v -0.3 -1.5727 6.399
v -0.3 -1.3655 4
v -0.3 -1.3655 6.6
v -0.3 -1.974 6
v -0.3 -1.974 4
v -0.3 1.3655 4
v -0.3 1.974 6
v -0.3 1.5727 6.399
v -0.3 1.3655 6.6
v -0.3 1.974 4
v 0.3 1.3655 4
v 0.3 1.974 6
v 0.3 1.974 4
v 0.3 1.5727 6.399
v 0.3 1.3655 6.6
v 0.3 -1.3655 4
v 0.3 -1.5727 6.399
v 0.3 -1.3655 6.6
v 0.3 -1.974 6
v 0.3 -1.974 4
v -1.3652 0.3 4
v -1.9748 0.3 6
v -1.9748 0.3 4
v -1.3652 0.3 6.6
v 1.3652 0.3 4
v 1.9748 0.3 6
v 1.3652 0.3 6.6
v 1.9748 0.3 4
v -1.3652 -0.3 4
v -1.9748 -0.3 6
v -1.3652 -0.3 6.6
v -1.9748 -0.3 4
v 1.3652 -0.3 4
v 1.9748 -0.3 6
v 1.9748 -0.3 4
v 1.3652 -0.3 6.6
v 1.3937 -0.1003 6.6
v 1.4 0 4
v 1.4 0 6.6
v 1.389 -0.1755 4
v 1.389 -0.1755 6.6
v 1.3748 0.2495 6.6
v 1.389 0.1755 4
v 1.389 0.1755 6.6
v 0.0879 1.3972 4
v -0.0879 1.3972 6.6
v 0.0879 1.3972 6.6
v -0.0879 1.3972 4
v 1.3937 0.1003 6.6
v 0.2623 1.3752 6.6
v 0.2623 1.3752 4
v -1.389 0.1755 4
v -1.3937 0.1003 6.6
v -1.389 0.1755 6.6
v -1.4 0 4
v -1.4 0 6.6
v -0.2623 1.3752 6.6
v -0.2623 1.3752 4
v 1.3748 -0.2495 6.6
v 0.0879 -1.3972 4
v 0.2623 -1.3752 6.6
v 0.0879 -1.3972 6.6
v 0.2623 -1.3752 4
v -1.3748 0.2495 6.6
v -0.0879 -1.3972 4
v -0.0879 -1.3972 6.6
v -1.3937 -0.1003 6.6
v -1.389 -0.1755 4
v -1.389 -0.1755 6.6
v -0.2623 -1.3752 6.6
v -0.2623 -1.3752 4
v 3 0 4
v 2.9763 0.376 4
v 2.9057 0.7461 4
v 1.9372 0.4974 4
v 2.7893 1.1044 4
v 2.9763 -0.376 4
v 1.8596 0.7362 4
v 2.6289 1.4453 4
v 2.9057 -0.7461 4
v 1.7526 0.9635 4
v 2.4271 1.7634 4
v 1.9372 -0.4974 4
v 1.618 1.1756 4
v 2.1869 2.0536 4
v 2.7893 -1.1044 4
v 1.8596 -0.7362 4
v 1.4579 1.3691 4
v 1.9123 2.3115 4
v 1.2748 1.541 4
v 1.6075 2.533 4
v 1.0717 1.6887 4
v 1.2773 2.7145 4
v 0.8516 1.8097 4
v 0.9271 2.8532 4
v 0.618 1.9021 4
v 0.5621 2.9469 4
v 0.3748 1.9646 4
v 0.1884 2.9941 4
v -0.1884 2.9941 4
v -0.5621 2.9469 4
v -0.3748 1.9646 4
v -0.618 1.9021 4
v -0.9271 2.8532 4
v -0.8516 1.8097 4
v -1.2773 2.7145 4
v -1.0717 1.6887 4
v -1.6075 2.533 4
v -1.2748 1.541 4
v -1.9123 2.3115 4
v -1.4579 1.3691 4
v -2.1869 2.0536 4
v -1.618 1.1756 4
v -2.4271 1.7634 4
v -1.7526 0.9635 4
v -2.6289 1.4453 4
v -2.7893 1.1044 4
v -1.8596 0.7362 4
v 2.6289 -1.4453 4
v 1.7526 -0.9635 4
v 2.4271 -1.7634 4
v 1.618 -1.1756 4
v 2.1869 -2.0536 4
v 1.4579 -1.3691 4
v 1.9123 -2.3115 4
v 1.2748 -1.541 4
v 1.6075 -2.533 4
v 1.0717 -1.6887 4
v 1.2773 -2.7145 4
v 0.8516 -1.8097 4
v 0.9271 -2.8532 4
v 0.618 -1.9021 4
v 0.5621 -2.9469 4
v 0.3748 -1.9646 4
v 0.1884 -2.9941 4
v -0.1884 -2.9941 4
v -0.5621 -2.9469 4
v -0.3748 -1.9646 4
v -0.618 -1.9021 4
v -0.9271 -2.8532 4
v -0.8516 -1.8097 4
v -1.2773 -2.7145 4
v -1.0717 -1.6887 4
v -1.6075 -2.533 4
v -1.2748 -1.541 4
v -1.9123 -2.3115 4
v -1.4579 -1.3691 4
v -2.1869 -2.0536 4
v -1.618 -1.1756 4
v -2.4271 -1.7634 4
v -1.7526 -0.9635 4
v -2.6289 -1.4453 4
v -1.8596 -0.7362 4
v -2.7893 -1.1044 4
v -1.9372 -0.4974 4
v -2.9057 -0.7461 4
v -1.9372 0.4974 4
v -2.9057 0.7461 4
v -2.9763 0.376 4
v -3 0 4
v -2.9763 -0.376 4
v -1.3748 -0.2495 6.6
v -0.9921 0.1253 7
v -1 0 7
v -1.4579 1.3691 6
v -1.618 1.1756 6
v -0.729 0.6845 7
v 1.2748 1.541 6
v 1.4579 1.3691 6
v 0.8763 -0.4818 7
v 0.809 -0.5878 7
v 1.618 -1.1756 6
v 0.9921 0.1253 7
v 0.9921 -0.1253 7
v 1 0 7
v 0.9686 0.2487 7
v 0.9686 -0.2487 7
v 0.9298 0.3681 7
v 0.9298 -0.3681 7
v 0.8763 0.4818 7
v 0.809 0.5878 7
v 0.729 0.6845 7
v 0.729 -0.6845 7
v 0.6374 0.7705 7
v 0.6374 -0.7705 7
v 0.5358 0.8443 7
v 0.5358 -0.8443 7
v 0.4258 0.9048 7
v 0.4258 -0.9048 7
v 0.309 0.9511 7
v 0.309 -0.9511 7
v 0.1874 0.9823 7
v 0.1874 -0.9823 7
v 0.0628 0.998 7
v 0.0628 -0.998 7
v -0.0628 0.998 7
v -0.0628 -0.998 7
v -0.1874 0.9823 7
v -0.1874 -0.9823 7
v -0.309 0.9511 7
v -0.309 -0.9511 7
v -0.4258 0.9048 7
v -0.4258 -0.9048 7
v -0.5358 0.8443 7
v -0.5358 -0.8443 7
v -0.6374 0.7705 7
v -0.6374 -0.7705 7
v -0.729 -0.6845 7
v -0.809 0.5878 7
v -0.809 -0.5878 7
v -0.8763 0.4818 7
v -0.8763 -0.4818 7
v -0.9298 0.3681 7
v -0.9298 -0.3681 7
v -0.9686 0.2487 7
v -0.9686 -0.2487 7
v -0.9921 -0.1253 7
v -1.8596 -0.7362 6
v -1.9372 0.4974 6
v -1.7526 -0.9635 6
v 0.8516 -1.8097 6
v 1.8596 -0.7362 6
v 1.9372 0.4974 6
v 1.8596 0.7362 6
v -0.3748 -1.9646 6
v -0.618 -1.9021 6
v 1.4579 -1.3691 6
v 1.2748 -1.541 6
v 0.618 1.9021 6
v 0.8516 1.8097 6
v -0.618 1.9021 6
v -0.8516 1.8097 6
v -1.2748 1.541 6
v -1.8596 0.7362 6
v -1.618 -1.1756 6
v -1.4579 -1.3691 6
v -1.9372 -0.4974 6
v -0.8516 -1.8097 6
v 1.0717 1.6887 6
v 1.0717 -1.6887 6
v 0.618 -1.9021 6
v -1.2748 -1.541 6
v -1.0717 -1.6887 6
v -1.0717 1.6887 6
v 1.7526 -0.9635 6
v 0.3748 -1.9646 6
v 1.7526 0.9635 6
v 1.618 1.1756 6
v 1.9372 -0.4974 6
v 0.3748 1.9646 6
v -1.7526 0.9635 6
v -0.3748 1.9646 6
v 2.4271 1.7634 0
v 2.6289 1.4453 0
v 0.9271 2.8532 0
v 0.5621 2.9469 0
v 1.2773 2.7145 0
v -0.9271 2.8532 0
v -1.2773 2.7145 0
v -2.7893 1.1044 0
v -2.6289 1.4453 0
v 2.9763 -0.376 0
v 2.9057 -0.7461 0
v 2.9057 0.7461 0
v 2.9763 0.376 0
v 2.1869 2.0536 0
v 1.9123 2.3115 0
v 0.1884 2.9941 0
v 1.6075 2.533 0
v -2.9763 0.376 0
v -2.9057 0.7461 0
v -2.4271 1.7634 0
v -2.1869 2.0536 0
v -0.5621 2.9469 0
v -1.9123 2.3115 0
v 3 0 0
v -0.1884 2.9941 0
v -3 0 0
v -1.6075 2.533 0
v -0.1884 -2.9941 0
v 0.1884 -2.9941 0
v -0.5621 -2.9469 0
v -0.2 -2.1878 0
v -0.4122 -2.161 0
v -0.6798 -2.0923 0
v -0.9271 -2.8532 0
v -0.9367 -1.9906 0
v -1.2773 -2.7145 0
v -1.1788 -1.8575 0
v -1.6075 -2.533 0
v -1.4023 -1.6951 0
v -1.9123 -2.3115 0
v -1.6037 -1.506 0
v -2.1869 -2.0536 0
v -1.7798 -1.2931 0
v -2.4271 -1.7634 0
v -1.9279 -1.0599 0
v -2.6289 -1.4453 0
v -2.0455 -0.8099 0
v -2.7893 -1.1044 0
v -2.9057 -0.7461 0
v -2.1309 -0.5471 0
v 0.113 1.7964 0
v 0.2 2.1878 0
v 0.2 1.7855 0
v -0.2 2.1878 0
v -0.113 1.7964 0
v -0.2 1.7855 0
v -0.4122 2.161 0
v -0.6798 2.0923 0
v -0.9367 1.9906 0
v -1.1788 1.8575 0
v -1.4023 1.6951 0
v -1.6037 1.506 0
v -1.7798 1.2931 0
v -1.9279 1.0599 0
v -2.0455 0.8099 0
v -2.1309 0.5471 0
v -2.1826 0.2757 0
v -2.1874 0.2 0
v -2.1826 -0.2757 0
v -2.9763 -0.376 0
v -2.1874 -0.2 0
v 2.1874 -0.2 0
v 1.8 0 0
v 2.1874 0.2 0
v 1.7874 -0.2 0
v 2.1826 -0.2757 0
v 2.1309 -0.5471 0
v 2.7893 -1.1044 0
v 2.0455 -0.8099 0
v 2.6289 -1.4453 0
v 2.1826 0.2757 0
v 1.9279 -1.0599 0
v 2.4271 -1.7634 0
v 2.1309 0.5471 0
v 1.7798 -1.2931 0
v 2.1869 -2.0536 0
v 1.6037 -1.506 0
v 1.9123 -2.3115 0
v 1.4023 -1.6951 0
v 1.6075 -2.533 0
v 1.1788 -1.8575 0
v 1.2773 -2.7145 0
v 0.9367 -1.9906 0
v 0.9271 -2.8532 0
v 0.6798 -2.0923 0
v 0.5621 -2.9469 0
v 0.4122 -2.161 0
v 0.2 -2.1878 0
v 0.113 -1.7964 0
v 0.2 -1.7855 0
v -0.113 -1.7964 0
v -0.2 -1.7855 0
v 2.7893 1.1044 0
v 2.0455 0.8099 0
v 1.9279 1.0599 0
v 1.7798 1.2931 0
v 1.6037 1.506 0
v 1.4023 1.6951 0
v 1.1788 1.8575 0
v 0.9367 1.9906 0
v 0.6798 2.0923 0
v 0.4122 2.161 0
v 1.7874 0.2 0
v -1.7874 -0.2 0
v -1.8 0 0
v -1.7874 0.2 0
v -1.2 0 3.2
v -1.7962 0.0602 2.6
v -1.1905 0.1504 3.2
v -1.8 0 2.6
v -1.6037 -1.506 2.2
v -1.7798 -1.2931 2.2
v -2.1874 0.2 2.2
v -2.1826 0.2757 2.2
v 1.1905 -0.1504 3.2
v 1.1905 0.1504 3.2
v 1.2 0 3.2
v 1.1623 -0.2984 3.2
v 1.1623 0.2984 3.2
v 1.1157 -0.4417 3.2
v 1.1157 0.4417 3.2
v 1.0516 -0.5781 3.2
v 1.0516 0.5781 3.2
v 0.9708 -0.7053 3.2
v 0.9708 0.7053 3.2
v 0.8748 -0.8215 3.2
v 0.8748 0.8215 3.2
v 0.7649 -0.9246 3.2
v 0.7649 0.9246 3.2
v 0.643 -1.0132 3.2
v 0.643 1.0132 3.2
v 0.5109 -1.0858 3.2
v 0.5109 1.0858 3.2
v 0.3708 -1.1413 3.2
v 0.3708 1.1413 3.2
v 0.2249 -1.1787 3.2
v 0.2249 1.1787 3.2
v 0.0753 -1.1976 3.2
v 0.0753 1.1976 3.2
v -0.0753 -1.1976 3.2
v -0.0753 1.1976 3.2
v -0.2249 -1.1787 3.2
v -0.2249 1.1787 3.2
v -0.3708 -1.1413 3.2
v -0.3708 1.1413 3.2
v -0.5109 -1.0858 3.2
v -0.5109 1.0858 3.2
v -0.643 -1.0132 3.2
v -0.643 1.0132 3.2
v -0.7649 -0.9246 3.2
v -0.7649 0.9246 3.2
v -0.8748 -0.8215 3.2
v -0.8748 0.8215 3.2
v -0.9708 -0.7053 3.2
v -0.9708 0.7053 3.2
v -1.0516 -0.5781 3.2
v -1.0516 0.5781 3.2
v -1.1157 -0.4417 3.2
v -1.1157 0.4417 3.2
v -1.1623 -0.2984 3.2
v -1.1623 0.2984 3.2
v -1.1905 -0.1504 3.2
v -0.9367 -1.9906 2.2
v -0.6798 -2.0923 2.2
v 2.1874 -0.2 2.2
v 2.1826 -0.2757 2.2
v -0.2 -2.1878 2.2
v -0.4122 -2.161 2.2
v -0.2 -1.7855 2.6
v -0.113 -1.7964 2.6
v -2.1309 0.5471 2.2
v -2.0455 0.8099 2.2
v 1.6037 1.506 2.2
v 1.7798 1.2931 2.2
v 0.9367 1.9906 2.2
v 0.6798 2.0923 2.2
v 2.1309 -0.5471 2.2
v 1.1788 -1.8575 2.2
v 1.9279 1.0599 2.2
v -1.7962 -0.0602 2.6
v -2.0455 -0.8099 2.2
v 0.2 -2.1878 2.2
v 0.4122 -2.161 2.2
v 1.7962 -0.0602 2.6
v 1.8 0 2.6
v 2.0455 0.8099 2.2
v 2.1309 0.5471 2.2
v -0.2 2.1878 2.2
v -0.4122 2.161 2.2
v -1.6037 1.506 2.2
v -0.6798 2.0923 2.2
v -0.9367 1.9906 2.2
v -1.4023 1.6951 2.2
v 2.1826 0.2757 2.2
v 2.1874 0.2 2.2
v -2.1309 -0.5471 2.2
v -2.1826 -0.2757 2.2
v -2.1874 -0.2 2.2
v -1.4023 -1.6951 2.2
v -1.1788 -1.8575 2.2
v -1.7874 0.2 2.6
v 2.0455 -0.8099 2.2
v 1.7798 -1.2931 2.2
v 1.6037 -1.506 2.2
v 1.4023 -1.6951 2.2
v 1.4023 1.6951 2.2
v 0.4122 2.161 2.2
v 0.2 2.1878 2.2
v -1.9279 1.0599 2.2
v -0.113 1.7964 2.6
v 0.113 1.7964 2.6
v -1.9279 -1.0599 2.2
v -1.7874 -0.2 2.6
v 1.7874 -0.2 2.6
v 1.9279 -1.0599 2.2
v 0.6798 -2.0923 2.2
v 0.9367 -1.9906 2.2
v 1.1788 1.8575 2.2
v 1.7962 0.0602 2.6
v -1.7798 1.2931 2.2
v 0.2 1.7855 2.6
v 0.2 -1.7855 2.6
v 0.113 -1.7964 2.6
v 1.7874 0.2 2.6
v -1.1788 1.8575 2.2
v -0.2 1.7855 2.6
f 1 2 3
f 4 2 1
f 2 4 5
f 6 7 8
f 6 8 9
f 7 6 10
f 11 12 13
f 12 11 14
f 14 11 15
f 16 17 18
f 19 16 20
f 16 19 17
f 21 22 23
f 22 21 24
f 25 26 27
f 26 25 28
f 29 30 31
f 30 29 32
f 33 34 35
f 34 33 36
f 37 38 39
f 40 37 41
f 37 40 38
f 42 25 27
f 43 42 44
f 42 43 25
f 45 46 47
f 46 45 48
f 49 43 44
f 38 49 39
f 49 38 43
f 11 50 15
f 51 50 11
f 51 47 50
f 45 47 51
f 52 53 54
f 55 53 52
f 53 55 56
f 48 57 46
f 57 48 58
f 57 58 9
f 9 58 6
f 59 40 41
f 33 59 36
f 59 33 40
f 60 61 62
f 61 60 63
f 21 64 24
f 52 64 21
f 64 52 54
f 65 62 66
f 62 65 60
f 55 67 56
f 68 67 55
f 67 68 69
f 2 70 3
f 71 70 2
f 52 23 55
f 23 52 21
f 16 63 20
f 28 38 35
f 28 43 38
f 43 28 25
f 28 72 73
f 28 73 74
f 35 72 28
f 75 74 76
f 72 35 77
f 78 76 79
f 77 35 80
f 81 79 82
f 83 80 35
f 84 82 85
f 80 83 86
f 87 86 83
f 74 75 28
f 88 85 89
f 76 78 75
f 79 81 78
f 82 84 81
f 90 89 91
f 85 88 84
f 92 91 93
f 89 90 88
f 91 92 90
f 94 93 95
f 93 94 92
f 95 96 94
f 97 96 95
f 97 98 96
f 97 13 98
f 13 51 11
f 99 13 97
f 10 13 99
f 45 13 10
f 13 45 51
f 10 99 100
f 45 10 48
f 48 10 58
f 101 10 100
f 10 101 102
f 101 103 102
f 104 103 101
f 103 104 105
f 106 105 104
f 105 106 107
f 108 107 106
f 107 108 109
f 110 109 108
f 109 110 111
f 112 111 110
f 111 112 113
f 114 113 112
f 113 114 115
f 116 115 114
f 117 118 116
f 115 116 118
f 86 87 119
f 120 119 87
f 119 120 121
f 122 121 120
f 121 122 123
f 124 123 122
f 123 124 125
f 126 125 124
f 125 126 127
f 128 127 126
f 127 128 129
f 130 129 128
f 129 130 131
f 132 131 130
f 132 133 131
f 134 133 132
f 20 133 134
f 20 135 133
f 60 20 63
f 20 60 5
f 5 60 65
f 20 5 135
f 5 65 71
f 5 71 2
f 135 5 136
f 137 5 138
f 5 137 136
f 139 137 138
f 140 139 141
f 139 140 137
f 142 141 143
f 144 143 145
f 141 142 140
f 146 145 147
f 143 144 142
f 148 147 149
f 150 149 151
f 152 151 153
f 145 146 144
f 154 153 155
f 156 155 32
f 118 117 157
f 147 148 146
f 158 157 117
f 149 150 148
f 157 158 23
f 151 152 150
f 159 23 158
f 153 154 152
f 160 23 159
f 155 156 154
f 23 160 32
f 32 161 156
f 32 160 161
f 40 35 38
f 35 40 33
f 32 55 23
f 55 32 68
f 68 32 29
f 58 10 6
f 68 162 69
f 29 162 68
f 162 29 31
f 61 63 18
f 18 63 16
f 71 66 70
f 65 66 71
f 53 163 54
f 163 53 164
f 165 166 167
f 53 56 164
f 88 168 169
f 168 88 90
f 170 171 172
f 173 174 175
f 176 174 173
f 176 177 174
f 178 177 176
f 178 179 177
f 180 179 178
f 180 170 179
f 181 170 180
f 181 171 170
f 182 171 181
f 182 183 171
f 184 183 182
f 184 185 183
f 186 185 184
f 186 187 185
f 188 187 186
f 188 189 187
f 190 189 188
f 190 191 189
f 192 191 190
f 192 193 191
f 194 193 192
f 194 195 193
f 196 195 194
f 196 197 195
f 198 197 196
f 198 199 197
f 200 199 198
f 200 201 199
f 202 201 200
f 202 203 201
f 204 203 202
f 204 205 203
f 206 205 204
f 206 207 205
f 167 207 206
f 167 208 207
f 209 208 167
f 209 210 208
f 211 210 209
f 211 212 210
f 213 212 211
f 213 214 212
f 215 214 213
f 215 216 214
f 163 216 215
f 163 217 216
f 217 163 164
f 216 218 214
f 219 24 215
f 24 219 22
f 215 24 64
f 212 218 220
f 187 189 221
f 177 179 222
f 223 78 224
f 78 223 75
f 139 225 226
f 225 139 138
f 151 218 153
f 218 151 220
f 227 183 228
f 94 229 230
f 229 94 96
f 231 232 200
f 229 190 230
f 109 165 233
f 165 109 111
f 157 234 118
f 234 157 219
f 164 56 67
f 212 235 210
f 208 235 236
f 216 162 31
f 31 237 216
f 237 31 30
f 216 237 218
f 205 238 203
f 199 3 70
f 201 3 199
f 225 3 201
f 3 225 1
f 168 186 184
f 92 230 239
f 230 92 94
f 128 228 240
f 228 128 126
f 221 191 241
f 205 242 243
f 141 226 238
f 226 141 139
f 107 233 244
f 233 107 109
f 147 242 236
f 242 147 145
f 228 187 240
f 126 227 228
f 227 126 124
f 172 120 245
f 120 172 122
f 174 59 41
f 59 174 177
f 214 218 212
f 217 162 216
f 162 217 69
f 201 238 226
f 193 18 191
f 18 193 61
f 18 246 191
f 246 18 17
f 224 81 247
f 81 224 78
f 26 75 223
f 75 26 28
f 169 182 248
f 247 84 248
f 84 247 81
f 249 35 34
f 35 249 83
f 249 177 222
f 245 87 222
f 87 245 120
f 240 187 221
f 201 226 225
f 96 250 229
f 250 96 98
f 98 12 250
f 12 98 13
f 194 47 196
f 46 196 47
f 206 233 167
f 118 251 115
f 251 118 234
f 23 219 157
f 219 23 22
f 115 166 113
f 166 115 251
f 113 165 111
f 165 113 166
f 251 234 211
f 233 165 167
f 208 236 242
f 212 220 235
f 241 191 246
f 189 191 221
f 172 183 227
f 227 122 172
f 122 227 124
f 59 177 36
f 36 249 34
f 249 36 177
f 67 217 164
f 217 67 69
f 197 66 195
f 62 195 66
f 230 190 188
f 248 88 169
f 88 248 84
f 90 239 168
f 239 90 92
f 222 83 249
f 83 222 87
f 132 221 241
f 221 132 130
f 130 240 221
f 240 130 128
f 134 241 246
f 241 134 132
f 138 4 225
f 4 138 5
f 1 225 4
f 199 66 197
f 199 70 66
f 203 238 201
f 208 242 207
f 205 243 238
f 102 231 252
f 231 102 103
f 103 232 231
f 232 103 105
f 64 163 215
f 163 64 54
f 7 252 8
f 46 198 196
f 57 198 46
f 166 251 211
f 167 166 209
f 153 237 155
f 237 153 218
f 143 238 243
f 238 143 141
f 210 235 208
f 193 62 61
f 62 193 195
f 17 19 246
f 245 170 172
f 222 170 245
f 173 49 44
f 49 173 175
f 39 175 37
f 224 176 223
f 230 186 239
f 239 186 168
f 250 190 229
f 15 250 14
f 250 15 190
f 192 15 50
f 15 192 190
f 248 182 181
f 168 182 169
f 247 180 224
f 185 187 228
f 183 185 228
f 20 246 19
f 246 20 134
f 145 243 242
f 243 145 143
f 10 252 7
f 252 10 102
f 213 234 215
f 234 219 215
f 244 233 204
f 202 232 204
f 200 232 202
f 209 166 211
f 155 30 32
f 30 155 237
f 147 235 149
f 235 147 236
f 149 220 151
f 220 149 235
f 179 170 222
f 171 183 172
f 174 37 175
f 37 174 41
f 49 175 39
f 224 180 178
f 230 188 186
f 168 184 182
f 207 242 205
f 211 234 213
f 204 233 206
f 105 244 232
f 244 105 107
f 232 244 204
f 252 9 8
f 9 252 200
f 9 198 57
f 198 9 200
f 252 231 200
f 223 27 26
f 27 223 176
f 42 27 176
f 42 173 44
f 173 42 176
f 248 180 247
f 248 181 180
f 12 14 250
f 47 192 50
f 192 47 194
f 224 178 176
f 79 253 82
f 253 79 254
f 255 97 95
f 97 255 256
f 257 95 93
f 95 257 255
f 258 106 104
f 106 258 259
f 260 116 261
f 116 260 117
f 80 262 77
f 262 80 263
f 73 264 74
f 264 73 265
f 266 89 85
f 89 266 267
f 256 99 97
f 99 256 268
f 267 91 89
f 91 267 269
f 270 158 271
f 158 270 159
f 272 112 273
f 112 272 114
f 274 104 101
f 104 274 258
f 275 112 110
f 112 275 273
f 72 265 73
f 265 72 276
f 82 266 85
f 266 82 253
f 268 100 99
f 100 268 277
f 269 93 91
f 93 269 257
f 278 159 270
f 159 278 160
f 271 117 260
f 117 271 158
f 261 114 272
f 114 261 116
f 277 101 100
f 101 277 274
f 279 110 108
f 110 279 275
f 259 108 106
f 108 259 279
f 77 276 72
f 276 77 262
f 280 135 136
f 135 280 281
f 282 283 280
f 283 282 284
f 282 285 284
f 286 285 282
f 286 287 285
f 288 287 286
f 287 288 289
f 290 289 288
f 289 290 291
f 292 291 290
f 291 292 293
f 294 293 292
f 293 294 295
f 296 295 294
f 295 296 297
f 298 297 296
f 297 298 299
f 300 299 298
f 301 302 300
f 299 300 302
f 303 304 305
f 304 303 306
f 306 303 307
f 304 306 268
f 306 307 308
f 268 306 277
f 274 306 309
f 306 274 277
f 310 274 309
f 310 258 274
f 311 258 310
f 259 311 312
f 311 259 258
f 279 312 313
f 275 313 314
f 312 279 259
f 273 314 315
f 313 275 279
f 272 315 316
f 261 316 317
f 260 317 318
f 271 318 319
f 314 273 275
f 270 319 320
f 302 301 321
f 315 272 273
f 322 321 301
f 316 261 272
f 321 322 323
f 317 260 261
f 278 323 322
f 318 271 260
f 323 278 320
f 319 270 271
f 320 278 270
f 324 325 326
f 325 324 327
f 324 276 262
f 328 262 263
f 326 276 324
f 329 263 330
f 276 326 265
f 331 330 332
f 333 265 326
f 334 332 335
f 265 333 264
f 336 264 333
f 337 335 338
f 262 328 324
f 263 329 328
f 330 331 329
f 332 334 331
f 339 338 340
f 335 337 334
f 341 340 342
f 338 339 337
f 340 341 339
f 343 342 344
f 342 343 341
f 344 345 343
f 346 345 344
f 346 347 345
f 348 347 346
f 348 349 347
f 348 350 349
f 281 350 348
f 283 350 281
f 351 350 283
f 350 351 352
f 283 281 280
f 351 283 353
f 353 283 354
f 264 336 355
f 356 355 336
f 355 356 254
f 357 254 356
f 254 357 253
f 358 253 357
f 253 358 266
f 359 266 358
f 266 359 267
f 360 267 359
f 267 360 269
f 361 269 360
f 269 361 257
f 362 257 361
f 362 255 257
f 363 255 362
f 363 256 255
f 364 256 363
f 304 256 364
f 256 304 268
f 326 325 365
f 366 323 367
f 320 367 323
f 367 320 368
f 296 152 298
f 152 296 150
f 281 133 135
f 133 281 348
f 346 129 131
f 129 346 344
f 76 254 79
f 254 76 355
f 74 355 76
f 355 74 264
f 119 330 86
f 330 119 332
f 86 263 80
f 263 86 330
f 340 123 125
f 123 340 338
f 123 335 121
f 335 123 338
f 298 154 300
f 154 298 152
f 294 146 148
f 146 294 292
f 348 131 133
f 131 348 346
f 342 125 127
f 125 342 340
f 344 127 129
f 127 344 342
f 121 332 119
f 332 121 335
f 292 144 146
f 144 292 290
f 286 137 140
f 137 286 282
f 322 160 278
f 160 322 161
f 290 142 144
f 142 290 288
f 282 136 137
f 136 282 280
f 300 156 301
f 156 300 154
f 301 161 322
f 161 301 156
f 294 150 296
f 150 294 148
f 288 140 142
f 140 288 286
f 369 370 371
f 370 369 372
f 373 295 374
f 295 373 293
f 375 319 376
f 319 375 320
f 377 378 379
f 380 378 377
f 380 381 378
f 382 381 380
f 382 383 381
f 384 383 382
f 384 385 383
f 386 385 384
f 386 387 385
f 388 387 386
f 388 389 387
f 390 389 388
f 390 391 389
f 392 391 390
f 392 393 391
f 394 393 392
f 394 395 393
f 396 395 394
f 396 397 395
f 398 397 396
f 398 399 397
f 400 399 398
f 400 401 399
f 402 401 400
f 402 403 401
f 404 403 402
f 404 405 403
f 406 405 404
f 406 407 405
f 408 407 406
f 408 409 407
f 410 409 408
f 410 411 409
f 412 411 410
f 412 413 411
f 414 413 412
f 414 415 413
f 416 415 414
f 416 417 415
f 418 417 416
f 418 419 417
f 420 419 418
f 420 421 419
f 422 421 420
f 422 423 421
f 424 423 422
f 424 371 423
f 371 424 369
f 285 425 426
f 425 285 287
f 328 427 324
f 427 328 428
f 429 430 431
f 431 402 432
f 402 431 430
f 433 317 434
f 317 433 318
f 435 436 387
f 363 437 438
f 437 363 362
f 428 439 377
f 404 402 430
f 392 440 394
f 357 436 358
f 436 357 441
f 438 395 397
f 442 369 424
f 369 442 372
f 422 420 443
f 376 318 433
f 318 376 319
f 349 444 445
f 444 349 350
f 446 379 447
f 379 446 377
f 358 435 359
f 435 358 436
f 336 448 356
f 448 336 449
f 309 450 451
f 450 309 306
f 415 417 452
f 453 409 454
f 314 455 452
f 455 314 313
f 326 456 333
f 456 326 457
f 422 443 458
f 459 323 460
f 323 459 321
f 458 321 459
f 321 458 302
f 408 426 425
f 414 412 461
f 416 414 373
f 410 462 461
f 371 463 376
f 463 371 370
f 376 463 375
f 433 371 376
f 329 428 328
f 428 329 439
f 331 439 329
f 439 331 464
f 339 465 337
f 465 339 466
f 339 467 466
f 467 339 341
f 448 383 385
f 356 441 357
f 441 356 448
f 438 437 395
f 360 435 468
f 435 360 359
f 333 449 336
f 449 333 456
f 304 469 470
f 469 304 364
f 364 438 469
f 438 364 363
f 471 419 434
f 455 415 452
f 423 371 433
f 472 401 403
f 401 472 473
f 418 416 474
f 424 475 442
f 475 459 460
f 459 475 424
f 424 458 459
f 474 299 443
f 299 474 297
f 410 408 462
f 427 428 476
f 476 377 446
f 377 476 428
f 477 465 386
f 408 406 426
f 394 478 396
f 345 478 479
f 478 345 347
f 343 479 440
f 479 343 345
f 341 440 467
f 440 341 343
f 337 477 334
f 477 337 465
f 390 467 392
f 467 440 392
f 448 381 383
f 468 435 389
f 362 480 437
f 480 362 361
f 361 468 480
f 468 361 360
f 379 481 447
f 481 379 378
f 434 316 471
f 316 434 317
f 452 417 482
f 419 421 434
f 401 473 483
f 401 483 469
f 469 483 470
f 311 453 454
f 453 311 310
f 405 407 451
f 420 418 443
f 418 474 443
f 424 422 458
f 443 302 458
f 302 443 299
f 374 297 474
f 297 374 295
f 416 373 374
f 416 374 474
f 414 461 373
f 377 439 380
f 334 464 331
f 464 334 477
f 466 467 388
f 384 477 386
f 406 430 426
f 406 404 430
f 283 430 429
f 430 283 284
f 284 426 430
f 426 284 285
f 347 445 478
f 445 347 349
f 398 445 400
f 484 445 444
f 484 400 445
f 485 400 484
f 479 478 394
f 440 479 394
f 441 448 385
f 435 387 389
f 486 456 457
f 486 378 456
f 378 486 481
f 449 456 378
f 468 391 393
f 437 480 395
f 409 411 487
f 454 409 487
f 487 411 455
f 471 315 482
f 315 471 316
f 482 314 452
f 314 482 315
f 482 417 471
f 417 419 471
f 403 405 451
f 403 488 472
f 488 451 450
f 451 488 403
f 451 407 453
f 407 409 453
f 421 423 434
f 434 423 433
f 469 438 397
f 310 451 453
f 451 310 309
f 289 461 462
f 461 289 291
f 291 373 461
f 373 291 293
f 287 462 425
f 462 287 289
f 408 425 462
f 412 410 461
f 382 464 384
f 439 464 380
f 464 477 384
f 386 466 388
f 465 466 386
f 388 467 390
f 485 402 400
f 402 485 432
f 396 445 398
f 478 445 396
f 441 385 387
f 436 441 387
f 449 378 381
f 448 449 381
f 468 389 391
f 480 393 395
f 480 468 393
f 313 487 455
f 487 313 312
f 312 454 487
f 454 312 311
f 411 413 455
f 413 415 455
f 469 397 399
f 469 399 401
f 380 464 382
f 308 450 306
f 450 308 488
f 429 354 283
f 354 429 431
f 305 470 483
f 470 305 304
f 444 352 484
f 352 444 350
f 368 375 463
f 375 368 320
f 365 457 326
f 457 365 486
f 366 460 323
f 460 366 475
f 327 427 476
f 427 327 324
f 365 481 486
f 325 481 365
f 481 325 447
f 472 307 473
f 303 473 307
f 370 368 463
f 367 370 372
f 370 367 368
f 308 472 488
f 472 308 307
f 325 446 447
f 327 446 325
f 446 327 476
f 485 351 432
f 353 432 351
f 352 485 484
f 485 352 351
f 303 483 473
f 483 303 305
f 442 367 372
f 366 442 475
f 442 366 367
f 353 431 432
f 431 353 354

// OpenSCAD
$fn = 50;

renderRiser(height=4);

module renderRiser(height) {
  radius = 3;
  pegHeight = 3;
  holeRadius = 2;

  union() {
    difference() {
      union() {
        cylinder(r=radius, h=height);
        translate([0, 0, height])
          difference() {
            rotate_extrude()
              polygon(
                [
                  [0, 0],
                  [holeRadius, 0],
                  [holeRadius, pegHeight - 1],
                  [holeRadius - 1, pegHeight],
                  [0, pegHeight],
                ]
              );

            difference() {
              union() {
                translate([0, 0, pegHeight / 2]) cube([.6, holeRadius * 2, pegHeight + 1], center=true);
                translate([0, 0, pegHeight / 2]) cube([holeRadius * 2, .6, pegHeight + 1], center=true);
              }

              cylinder(r=holeRadius - .6, h=pegHeight + 2);
            }
          }
      }

      rotate_extrude()
        polygon(
          [
            [0, -1],
            [holeRadius + .2, -1],
            [holeRadius + .2, pegHeight - 1 + .2],
            [holeRadius - 1 + .2, pegHeight + .2],
            [0, pegHeight + .2],
          ]
        );
    }

    difference() {
      union() {
        translate([0, 0, pegHeight / 2]) cube([.4, (holeRadius + .2) * 2, pegHeight], center=true);
        translate([0, 0, pegHeight / 2]) cube([(holeRadius + .2) * 2, .4, pegHeight], center=true);
      }
      translate([0, 0, -.5]) cylinder(r=holeRadius - .2, h=pegHeight + 1);
    }
  }
  //   translate([0, 0, height / 2]) {
  //     difference() {
  //       union() {
  //         intersection() {
  //           union() {
  //             if (type == "cross") {
  //               for (a = [0:1])
  //                 rotate([0, 0, a * 90]) cube([wallThickness, radius * 2, height], center=true);
  //             } else if (type == "hash") {
  //               for (a = [0:1])
  //                 for (i = [-floor(radius / (wallThickness * 4)):floor(radius / (wallThickness * 4))])
  //                   rotate([0, 0, a * 90]) translate([i * wallThickness * 4, 0, 0]) cube([wallThickness, radius * 2, height], center=true);
  //             } else if (type == "spiral") {
  //               tendons = 3;
  //               steps = 10;
  //               curve = 60;

  //               for (a = [0:tendons - 1]) {
  //                 for (i = [0:steps - 2]) {
  //                   angleFrom = a * (360 / tendons) + i * (curve / steps);
  //                   angleTo = a * (360 / tendons) + (i + 1) * (curve / steps);

  //                   radiusFrom = i * (radius / steps);
  //                   radiusTo = (i + 1) * (radius / steps);

  //                   hull() {
  //                     translate([radiusFrom * cos(angleFrom), radiusFrom * sin(angleFrom), 0]) cylinder(d=wallThickness, h=height, center=true, $fn=steps);
  //                     translate([radiusTo * cos(angleTo), radiusTo * sin(angleTo), 0]) cylinder(d=wallThickness, h=height, center=true, $fn=steps);
  //                   }
  //                 }
  //               }
  //             }
  //           }

  //           cylinder(r=radius - toothLength / 2 - wallThickness, h=height, center=true);
  //         }

  //         difference() {
  //           cylinder(r=radius - toothLength / 2, h=height, center=true);
  //           cylinder(r=radius - toothLength / 2 - wallThickness, h=height + 1, center=true);
  //         }

  //         cylinder(r=holeRadius + wallThickness, h=height, center=true);
  //         translate([0, 0, height / 2])
  //           difference() {
  //             rotate_extrude()
  //               polygon(
  //                 [
  //                   [0, 0],
  //                   [holeRadius, 0],
  //                   [holeRadius, pegHeight - 1],
  //                   [holeRadius - 1, pegHeight],
  //                   [0, pegHeight],
  //                 ]
  //               );

  //             difference() {
  //               union() {
  //                 translate([0, 0, pegHeight / 2]) cube([.6, holeRadius * 2, pegHeight + 1], center=true);
  //                 translate([0, 0, pegHeight / 2]) cube([holeRadius * 2, .6, pegHeight + 1], center=true);
  //               }

  //               cylinder(r=holeRadius - .6, h=pegHeight + 2);
  //             }
  //           }
  //       }

  //       translate([0, 0, -height / 2])
  //         rotate_extrude()
  //           polygon(
  //             [
  //               [0, -1],
  //               [holeRadius + .2, -1],
  //               [holeRadius + .2, pegHeight - 1 + .2],
  //               [holeRadius - 1 + .2, pegHeight + .2],
  //               [0, pegHeight + .2],
  //             ]
  //           );
  //     }

  //     difference() {
  //       union() {
  //         translate([0, 0, -(height - pegHeight) / 2]) cube([.4, (holeRadius + .2) * 2, pegHeight], center=true);
  //         translate([0, 0, -(height - pegHeight) / 2]) cube([(holeRadius + .2) * 2, .4, pegHeight], center=true);
  //       }
  //       translate([0, 0, -height / 2 - .5]) cylinder(r=holeRadius - .2, h=pegHeight + 1);
  //     }
  //   }
}
